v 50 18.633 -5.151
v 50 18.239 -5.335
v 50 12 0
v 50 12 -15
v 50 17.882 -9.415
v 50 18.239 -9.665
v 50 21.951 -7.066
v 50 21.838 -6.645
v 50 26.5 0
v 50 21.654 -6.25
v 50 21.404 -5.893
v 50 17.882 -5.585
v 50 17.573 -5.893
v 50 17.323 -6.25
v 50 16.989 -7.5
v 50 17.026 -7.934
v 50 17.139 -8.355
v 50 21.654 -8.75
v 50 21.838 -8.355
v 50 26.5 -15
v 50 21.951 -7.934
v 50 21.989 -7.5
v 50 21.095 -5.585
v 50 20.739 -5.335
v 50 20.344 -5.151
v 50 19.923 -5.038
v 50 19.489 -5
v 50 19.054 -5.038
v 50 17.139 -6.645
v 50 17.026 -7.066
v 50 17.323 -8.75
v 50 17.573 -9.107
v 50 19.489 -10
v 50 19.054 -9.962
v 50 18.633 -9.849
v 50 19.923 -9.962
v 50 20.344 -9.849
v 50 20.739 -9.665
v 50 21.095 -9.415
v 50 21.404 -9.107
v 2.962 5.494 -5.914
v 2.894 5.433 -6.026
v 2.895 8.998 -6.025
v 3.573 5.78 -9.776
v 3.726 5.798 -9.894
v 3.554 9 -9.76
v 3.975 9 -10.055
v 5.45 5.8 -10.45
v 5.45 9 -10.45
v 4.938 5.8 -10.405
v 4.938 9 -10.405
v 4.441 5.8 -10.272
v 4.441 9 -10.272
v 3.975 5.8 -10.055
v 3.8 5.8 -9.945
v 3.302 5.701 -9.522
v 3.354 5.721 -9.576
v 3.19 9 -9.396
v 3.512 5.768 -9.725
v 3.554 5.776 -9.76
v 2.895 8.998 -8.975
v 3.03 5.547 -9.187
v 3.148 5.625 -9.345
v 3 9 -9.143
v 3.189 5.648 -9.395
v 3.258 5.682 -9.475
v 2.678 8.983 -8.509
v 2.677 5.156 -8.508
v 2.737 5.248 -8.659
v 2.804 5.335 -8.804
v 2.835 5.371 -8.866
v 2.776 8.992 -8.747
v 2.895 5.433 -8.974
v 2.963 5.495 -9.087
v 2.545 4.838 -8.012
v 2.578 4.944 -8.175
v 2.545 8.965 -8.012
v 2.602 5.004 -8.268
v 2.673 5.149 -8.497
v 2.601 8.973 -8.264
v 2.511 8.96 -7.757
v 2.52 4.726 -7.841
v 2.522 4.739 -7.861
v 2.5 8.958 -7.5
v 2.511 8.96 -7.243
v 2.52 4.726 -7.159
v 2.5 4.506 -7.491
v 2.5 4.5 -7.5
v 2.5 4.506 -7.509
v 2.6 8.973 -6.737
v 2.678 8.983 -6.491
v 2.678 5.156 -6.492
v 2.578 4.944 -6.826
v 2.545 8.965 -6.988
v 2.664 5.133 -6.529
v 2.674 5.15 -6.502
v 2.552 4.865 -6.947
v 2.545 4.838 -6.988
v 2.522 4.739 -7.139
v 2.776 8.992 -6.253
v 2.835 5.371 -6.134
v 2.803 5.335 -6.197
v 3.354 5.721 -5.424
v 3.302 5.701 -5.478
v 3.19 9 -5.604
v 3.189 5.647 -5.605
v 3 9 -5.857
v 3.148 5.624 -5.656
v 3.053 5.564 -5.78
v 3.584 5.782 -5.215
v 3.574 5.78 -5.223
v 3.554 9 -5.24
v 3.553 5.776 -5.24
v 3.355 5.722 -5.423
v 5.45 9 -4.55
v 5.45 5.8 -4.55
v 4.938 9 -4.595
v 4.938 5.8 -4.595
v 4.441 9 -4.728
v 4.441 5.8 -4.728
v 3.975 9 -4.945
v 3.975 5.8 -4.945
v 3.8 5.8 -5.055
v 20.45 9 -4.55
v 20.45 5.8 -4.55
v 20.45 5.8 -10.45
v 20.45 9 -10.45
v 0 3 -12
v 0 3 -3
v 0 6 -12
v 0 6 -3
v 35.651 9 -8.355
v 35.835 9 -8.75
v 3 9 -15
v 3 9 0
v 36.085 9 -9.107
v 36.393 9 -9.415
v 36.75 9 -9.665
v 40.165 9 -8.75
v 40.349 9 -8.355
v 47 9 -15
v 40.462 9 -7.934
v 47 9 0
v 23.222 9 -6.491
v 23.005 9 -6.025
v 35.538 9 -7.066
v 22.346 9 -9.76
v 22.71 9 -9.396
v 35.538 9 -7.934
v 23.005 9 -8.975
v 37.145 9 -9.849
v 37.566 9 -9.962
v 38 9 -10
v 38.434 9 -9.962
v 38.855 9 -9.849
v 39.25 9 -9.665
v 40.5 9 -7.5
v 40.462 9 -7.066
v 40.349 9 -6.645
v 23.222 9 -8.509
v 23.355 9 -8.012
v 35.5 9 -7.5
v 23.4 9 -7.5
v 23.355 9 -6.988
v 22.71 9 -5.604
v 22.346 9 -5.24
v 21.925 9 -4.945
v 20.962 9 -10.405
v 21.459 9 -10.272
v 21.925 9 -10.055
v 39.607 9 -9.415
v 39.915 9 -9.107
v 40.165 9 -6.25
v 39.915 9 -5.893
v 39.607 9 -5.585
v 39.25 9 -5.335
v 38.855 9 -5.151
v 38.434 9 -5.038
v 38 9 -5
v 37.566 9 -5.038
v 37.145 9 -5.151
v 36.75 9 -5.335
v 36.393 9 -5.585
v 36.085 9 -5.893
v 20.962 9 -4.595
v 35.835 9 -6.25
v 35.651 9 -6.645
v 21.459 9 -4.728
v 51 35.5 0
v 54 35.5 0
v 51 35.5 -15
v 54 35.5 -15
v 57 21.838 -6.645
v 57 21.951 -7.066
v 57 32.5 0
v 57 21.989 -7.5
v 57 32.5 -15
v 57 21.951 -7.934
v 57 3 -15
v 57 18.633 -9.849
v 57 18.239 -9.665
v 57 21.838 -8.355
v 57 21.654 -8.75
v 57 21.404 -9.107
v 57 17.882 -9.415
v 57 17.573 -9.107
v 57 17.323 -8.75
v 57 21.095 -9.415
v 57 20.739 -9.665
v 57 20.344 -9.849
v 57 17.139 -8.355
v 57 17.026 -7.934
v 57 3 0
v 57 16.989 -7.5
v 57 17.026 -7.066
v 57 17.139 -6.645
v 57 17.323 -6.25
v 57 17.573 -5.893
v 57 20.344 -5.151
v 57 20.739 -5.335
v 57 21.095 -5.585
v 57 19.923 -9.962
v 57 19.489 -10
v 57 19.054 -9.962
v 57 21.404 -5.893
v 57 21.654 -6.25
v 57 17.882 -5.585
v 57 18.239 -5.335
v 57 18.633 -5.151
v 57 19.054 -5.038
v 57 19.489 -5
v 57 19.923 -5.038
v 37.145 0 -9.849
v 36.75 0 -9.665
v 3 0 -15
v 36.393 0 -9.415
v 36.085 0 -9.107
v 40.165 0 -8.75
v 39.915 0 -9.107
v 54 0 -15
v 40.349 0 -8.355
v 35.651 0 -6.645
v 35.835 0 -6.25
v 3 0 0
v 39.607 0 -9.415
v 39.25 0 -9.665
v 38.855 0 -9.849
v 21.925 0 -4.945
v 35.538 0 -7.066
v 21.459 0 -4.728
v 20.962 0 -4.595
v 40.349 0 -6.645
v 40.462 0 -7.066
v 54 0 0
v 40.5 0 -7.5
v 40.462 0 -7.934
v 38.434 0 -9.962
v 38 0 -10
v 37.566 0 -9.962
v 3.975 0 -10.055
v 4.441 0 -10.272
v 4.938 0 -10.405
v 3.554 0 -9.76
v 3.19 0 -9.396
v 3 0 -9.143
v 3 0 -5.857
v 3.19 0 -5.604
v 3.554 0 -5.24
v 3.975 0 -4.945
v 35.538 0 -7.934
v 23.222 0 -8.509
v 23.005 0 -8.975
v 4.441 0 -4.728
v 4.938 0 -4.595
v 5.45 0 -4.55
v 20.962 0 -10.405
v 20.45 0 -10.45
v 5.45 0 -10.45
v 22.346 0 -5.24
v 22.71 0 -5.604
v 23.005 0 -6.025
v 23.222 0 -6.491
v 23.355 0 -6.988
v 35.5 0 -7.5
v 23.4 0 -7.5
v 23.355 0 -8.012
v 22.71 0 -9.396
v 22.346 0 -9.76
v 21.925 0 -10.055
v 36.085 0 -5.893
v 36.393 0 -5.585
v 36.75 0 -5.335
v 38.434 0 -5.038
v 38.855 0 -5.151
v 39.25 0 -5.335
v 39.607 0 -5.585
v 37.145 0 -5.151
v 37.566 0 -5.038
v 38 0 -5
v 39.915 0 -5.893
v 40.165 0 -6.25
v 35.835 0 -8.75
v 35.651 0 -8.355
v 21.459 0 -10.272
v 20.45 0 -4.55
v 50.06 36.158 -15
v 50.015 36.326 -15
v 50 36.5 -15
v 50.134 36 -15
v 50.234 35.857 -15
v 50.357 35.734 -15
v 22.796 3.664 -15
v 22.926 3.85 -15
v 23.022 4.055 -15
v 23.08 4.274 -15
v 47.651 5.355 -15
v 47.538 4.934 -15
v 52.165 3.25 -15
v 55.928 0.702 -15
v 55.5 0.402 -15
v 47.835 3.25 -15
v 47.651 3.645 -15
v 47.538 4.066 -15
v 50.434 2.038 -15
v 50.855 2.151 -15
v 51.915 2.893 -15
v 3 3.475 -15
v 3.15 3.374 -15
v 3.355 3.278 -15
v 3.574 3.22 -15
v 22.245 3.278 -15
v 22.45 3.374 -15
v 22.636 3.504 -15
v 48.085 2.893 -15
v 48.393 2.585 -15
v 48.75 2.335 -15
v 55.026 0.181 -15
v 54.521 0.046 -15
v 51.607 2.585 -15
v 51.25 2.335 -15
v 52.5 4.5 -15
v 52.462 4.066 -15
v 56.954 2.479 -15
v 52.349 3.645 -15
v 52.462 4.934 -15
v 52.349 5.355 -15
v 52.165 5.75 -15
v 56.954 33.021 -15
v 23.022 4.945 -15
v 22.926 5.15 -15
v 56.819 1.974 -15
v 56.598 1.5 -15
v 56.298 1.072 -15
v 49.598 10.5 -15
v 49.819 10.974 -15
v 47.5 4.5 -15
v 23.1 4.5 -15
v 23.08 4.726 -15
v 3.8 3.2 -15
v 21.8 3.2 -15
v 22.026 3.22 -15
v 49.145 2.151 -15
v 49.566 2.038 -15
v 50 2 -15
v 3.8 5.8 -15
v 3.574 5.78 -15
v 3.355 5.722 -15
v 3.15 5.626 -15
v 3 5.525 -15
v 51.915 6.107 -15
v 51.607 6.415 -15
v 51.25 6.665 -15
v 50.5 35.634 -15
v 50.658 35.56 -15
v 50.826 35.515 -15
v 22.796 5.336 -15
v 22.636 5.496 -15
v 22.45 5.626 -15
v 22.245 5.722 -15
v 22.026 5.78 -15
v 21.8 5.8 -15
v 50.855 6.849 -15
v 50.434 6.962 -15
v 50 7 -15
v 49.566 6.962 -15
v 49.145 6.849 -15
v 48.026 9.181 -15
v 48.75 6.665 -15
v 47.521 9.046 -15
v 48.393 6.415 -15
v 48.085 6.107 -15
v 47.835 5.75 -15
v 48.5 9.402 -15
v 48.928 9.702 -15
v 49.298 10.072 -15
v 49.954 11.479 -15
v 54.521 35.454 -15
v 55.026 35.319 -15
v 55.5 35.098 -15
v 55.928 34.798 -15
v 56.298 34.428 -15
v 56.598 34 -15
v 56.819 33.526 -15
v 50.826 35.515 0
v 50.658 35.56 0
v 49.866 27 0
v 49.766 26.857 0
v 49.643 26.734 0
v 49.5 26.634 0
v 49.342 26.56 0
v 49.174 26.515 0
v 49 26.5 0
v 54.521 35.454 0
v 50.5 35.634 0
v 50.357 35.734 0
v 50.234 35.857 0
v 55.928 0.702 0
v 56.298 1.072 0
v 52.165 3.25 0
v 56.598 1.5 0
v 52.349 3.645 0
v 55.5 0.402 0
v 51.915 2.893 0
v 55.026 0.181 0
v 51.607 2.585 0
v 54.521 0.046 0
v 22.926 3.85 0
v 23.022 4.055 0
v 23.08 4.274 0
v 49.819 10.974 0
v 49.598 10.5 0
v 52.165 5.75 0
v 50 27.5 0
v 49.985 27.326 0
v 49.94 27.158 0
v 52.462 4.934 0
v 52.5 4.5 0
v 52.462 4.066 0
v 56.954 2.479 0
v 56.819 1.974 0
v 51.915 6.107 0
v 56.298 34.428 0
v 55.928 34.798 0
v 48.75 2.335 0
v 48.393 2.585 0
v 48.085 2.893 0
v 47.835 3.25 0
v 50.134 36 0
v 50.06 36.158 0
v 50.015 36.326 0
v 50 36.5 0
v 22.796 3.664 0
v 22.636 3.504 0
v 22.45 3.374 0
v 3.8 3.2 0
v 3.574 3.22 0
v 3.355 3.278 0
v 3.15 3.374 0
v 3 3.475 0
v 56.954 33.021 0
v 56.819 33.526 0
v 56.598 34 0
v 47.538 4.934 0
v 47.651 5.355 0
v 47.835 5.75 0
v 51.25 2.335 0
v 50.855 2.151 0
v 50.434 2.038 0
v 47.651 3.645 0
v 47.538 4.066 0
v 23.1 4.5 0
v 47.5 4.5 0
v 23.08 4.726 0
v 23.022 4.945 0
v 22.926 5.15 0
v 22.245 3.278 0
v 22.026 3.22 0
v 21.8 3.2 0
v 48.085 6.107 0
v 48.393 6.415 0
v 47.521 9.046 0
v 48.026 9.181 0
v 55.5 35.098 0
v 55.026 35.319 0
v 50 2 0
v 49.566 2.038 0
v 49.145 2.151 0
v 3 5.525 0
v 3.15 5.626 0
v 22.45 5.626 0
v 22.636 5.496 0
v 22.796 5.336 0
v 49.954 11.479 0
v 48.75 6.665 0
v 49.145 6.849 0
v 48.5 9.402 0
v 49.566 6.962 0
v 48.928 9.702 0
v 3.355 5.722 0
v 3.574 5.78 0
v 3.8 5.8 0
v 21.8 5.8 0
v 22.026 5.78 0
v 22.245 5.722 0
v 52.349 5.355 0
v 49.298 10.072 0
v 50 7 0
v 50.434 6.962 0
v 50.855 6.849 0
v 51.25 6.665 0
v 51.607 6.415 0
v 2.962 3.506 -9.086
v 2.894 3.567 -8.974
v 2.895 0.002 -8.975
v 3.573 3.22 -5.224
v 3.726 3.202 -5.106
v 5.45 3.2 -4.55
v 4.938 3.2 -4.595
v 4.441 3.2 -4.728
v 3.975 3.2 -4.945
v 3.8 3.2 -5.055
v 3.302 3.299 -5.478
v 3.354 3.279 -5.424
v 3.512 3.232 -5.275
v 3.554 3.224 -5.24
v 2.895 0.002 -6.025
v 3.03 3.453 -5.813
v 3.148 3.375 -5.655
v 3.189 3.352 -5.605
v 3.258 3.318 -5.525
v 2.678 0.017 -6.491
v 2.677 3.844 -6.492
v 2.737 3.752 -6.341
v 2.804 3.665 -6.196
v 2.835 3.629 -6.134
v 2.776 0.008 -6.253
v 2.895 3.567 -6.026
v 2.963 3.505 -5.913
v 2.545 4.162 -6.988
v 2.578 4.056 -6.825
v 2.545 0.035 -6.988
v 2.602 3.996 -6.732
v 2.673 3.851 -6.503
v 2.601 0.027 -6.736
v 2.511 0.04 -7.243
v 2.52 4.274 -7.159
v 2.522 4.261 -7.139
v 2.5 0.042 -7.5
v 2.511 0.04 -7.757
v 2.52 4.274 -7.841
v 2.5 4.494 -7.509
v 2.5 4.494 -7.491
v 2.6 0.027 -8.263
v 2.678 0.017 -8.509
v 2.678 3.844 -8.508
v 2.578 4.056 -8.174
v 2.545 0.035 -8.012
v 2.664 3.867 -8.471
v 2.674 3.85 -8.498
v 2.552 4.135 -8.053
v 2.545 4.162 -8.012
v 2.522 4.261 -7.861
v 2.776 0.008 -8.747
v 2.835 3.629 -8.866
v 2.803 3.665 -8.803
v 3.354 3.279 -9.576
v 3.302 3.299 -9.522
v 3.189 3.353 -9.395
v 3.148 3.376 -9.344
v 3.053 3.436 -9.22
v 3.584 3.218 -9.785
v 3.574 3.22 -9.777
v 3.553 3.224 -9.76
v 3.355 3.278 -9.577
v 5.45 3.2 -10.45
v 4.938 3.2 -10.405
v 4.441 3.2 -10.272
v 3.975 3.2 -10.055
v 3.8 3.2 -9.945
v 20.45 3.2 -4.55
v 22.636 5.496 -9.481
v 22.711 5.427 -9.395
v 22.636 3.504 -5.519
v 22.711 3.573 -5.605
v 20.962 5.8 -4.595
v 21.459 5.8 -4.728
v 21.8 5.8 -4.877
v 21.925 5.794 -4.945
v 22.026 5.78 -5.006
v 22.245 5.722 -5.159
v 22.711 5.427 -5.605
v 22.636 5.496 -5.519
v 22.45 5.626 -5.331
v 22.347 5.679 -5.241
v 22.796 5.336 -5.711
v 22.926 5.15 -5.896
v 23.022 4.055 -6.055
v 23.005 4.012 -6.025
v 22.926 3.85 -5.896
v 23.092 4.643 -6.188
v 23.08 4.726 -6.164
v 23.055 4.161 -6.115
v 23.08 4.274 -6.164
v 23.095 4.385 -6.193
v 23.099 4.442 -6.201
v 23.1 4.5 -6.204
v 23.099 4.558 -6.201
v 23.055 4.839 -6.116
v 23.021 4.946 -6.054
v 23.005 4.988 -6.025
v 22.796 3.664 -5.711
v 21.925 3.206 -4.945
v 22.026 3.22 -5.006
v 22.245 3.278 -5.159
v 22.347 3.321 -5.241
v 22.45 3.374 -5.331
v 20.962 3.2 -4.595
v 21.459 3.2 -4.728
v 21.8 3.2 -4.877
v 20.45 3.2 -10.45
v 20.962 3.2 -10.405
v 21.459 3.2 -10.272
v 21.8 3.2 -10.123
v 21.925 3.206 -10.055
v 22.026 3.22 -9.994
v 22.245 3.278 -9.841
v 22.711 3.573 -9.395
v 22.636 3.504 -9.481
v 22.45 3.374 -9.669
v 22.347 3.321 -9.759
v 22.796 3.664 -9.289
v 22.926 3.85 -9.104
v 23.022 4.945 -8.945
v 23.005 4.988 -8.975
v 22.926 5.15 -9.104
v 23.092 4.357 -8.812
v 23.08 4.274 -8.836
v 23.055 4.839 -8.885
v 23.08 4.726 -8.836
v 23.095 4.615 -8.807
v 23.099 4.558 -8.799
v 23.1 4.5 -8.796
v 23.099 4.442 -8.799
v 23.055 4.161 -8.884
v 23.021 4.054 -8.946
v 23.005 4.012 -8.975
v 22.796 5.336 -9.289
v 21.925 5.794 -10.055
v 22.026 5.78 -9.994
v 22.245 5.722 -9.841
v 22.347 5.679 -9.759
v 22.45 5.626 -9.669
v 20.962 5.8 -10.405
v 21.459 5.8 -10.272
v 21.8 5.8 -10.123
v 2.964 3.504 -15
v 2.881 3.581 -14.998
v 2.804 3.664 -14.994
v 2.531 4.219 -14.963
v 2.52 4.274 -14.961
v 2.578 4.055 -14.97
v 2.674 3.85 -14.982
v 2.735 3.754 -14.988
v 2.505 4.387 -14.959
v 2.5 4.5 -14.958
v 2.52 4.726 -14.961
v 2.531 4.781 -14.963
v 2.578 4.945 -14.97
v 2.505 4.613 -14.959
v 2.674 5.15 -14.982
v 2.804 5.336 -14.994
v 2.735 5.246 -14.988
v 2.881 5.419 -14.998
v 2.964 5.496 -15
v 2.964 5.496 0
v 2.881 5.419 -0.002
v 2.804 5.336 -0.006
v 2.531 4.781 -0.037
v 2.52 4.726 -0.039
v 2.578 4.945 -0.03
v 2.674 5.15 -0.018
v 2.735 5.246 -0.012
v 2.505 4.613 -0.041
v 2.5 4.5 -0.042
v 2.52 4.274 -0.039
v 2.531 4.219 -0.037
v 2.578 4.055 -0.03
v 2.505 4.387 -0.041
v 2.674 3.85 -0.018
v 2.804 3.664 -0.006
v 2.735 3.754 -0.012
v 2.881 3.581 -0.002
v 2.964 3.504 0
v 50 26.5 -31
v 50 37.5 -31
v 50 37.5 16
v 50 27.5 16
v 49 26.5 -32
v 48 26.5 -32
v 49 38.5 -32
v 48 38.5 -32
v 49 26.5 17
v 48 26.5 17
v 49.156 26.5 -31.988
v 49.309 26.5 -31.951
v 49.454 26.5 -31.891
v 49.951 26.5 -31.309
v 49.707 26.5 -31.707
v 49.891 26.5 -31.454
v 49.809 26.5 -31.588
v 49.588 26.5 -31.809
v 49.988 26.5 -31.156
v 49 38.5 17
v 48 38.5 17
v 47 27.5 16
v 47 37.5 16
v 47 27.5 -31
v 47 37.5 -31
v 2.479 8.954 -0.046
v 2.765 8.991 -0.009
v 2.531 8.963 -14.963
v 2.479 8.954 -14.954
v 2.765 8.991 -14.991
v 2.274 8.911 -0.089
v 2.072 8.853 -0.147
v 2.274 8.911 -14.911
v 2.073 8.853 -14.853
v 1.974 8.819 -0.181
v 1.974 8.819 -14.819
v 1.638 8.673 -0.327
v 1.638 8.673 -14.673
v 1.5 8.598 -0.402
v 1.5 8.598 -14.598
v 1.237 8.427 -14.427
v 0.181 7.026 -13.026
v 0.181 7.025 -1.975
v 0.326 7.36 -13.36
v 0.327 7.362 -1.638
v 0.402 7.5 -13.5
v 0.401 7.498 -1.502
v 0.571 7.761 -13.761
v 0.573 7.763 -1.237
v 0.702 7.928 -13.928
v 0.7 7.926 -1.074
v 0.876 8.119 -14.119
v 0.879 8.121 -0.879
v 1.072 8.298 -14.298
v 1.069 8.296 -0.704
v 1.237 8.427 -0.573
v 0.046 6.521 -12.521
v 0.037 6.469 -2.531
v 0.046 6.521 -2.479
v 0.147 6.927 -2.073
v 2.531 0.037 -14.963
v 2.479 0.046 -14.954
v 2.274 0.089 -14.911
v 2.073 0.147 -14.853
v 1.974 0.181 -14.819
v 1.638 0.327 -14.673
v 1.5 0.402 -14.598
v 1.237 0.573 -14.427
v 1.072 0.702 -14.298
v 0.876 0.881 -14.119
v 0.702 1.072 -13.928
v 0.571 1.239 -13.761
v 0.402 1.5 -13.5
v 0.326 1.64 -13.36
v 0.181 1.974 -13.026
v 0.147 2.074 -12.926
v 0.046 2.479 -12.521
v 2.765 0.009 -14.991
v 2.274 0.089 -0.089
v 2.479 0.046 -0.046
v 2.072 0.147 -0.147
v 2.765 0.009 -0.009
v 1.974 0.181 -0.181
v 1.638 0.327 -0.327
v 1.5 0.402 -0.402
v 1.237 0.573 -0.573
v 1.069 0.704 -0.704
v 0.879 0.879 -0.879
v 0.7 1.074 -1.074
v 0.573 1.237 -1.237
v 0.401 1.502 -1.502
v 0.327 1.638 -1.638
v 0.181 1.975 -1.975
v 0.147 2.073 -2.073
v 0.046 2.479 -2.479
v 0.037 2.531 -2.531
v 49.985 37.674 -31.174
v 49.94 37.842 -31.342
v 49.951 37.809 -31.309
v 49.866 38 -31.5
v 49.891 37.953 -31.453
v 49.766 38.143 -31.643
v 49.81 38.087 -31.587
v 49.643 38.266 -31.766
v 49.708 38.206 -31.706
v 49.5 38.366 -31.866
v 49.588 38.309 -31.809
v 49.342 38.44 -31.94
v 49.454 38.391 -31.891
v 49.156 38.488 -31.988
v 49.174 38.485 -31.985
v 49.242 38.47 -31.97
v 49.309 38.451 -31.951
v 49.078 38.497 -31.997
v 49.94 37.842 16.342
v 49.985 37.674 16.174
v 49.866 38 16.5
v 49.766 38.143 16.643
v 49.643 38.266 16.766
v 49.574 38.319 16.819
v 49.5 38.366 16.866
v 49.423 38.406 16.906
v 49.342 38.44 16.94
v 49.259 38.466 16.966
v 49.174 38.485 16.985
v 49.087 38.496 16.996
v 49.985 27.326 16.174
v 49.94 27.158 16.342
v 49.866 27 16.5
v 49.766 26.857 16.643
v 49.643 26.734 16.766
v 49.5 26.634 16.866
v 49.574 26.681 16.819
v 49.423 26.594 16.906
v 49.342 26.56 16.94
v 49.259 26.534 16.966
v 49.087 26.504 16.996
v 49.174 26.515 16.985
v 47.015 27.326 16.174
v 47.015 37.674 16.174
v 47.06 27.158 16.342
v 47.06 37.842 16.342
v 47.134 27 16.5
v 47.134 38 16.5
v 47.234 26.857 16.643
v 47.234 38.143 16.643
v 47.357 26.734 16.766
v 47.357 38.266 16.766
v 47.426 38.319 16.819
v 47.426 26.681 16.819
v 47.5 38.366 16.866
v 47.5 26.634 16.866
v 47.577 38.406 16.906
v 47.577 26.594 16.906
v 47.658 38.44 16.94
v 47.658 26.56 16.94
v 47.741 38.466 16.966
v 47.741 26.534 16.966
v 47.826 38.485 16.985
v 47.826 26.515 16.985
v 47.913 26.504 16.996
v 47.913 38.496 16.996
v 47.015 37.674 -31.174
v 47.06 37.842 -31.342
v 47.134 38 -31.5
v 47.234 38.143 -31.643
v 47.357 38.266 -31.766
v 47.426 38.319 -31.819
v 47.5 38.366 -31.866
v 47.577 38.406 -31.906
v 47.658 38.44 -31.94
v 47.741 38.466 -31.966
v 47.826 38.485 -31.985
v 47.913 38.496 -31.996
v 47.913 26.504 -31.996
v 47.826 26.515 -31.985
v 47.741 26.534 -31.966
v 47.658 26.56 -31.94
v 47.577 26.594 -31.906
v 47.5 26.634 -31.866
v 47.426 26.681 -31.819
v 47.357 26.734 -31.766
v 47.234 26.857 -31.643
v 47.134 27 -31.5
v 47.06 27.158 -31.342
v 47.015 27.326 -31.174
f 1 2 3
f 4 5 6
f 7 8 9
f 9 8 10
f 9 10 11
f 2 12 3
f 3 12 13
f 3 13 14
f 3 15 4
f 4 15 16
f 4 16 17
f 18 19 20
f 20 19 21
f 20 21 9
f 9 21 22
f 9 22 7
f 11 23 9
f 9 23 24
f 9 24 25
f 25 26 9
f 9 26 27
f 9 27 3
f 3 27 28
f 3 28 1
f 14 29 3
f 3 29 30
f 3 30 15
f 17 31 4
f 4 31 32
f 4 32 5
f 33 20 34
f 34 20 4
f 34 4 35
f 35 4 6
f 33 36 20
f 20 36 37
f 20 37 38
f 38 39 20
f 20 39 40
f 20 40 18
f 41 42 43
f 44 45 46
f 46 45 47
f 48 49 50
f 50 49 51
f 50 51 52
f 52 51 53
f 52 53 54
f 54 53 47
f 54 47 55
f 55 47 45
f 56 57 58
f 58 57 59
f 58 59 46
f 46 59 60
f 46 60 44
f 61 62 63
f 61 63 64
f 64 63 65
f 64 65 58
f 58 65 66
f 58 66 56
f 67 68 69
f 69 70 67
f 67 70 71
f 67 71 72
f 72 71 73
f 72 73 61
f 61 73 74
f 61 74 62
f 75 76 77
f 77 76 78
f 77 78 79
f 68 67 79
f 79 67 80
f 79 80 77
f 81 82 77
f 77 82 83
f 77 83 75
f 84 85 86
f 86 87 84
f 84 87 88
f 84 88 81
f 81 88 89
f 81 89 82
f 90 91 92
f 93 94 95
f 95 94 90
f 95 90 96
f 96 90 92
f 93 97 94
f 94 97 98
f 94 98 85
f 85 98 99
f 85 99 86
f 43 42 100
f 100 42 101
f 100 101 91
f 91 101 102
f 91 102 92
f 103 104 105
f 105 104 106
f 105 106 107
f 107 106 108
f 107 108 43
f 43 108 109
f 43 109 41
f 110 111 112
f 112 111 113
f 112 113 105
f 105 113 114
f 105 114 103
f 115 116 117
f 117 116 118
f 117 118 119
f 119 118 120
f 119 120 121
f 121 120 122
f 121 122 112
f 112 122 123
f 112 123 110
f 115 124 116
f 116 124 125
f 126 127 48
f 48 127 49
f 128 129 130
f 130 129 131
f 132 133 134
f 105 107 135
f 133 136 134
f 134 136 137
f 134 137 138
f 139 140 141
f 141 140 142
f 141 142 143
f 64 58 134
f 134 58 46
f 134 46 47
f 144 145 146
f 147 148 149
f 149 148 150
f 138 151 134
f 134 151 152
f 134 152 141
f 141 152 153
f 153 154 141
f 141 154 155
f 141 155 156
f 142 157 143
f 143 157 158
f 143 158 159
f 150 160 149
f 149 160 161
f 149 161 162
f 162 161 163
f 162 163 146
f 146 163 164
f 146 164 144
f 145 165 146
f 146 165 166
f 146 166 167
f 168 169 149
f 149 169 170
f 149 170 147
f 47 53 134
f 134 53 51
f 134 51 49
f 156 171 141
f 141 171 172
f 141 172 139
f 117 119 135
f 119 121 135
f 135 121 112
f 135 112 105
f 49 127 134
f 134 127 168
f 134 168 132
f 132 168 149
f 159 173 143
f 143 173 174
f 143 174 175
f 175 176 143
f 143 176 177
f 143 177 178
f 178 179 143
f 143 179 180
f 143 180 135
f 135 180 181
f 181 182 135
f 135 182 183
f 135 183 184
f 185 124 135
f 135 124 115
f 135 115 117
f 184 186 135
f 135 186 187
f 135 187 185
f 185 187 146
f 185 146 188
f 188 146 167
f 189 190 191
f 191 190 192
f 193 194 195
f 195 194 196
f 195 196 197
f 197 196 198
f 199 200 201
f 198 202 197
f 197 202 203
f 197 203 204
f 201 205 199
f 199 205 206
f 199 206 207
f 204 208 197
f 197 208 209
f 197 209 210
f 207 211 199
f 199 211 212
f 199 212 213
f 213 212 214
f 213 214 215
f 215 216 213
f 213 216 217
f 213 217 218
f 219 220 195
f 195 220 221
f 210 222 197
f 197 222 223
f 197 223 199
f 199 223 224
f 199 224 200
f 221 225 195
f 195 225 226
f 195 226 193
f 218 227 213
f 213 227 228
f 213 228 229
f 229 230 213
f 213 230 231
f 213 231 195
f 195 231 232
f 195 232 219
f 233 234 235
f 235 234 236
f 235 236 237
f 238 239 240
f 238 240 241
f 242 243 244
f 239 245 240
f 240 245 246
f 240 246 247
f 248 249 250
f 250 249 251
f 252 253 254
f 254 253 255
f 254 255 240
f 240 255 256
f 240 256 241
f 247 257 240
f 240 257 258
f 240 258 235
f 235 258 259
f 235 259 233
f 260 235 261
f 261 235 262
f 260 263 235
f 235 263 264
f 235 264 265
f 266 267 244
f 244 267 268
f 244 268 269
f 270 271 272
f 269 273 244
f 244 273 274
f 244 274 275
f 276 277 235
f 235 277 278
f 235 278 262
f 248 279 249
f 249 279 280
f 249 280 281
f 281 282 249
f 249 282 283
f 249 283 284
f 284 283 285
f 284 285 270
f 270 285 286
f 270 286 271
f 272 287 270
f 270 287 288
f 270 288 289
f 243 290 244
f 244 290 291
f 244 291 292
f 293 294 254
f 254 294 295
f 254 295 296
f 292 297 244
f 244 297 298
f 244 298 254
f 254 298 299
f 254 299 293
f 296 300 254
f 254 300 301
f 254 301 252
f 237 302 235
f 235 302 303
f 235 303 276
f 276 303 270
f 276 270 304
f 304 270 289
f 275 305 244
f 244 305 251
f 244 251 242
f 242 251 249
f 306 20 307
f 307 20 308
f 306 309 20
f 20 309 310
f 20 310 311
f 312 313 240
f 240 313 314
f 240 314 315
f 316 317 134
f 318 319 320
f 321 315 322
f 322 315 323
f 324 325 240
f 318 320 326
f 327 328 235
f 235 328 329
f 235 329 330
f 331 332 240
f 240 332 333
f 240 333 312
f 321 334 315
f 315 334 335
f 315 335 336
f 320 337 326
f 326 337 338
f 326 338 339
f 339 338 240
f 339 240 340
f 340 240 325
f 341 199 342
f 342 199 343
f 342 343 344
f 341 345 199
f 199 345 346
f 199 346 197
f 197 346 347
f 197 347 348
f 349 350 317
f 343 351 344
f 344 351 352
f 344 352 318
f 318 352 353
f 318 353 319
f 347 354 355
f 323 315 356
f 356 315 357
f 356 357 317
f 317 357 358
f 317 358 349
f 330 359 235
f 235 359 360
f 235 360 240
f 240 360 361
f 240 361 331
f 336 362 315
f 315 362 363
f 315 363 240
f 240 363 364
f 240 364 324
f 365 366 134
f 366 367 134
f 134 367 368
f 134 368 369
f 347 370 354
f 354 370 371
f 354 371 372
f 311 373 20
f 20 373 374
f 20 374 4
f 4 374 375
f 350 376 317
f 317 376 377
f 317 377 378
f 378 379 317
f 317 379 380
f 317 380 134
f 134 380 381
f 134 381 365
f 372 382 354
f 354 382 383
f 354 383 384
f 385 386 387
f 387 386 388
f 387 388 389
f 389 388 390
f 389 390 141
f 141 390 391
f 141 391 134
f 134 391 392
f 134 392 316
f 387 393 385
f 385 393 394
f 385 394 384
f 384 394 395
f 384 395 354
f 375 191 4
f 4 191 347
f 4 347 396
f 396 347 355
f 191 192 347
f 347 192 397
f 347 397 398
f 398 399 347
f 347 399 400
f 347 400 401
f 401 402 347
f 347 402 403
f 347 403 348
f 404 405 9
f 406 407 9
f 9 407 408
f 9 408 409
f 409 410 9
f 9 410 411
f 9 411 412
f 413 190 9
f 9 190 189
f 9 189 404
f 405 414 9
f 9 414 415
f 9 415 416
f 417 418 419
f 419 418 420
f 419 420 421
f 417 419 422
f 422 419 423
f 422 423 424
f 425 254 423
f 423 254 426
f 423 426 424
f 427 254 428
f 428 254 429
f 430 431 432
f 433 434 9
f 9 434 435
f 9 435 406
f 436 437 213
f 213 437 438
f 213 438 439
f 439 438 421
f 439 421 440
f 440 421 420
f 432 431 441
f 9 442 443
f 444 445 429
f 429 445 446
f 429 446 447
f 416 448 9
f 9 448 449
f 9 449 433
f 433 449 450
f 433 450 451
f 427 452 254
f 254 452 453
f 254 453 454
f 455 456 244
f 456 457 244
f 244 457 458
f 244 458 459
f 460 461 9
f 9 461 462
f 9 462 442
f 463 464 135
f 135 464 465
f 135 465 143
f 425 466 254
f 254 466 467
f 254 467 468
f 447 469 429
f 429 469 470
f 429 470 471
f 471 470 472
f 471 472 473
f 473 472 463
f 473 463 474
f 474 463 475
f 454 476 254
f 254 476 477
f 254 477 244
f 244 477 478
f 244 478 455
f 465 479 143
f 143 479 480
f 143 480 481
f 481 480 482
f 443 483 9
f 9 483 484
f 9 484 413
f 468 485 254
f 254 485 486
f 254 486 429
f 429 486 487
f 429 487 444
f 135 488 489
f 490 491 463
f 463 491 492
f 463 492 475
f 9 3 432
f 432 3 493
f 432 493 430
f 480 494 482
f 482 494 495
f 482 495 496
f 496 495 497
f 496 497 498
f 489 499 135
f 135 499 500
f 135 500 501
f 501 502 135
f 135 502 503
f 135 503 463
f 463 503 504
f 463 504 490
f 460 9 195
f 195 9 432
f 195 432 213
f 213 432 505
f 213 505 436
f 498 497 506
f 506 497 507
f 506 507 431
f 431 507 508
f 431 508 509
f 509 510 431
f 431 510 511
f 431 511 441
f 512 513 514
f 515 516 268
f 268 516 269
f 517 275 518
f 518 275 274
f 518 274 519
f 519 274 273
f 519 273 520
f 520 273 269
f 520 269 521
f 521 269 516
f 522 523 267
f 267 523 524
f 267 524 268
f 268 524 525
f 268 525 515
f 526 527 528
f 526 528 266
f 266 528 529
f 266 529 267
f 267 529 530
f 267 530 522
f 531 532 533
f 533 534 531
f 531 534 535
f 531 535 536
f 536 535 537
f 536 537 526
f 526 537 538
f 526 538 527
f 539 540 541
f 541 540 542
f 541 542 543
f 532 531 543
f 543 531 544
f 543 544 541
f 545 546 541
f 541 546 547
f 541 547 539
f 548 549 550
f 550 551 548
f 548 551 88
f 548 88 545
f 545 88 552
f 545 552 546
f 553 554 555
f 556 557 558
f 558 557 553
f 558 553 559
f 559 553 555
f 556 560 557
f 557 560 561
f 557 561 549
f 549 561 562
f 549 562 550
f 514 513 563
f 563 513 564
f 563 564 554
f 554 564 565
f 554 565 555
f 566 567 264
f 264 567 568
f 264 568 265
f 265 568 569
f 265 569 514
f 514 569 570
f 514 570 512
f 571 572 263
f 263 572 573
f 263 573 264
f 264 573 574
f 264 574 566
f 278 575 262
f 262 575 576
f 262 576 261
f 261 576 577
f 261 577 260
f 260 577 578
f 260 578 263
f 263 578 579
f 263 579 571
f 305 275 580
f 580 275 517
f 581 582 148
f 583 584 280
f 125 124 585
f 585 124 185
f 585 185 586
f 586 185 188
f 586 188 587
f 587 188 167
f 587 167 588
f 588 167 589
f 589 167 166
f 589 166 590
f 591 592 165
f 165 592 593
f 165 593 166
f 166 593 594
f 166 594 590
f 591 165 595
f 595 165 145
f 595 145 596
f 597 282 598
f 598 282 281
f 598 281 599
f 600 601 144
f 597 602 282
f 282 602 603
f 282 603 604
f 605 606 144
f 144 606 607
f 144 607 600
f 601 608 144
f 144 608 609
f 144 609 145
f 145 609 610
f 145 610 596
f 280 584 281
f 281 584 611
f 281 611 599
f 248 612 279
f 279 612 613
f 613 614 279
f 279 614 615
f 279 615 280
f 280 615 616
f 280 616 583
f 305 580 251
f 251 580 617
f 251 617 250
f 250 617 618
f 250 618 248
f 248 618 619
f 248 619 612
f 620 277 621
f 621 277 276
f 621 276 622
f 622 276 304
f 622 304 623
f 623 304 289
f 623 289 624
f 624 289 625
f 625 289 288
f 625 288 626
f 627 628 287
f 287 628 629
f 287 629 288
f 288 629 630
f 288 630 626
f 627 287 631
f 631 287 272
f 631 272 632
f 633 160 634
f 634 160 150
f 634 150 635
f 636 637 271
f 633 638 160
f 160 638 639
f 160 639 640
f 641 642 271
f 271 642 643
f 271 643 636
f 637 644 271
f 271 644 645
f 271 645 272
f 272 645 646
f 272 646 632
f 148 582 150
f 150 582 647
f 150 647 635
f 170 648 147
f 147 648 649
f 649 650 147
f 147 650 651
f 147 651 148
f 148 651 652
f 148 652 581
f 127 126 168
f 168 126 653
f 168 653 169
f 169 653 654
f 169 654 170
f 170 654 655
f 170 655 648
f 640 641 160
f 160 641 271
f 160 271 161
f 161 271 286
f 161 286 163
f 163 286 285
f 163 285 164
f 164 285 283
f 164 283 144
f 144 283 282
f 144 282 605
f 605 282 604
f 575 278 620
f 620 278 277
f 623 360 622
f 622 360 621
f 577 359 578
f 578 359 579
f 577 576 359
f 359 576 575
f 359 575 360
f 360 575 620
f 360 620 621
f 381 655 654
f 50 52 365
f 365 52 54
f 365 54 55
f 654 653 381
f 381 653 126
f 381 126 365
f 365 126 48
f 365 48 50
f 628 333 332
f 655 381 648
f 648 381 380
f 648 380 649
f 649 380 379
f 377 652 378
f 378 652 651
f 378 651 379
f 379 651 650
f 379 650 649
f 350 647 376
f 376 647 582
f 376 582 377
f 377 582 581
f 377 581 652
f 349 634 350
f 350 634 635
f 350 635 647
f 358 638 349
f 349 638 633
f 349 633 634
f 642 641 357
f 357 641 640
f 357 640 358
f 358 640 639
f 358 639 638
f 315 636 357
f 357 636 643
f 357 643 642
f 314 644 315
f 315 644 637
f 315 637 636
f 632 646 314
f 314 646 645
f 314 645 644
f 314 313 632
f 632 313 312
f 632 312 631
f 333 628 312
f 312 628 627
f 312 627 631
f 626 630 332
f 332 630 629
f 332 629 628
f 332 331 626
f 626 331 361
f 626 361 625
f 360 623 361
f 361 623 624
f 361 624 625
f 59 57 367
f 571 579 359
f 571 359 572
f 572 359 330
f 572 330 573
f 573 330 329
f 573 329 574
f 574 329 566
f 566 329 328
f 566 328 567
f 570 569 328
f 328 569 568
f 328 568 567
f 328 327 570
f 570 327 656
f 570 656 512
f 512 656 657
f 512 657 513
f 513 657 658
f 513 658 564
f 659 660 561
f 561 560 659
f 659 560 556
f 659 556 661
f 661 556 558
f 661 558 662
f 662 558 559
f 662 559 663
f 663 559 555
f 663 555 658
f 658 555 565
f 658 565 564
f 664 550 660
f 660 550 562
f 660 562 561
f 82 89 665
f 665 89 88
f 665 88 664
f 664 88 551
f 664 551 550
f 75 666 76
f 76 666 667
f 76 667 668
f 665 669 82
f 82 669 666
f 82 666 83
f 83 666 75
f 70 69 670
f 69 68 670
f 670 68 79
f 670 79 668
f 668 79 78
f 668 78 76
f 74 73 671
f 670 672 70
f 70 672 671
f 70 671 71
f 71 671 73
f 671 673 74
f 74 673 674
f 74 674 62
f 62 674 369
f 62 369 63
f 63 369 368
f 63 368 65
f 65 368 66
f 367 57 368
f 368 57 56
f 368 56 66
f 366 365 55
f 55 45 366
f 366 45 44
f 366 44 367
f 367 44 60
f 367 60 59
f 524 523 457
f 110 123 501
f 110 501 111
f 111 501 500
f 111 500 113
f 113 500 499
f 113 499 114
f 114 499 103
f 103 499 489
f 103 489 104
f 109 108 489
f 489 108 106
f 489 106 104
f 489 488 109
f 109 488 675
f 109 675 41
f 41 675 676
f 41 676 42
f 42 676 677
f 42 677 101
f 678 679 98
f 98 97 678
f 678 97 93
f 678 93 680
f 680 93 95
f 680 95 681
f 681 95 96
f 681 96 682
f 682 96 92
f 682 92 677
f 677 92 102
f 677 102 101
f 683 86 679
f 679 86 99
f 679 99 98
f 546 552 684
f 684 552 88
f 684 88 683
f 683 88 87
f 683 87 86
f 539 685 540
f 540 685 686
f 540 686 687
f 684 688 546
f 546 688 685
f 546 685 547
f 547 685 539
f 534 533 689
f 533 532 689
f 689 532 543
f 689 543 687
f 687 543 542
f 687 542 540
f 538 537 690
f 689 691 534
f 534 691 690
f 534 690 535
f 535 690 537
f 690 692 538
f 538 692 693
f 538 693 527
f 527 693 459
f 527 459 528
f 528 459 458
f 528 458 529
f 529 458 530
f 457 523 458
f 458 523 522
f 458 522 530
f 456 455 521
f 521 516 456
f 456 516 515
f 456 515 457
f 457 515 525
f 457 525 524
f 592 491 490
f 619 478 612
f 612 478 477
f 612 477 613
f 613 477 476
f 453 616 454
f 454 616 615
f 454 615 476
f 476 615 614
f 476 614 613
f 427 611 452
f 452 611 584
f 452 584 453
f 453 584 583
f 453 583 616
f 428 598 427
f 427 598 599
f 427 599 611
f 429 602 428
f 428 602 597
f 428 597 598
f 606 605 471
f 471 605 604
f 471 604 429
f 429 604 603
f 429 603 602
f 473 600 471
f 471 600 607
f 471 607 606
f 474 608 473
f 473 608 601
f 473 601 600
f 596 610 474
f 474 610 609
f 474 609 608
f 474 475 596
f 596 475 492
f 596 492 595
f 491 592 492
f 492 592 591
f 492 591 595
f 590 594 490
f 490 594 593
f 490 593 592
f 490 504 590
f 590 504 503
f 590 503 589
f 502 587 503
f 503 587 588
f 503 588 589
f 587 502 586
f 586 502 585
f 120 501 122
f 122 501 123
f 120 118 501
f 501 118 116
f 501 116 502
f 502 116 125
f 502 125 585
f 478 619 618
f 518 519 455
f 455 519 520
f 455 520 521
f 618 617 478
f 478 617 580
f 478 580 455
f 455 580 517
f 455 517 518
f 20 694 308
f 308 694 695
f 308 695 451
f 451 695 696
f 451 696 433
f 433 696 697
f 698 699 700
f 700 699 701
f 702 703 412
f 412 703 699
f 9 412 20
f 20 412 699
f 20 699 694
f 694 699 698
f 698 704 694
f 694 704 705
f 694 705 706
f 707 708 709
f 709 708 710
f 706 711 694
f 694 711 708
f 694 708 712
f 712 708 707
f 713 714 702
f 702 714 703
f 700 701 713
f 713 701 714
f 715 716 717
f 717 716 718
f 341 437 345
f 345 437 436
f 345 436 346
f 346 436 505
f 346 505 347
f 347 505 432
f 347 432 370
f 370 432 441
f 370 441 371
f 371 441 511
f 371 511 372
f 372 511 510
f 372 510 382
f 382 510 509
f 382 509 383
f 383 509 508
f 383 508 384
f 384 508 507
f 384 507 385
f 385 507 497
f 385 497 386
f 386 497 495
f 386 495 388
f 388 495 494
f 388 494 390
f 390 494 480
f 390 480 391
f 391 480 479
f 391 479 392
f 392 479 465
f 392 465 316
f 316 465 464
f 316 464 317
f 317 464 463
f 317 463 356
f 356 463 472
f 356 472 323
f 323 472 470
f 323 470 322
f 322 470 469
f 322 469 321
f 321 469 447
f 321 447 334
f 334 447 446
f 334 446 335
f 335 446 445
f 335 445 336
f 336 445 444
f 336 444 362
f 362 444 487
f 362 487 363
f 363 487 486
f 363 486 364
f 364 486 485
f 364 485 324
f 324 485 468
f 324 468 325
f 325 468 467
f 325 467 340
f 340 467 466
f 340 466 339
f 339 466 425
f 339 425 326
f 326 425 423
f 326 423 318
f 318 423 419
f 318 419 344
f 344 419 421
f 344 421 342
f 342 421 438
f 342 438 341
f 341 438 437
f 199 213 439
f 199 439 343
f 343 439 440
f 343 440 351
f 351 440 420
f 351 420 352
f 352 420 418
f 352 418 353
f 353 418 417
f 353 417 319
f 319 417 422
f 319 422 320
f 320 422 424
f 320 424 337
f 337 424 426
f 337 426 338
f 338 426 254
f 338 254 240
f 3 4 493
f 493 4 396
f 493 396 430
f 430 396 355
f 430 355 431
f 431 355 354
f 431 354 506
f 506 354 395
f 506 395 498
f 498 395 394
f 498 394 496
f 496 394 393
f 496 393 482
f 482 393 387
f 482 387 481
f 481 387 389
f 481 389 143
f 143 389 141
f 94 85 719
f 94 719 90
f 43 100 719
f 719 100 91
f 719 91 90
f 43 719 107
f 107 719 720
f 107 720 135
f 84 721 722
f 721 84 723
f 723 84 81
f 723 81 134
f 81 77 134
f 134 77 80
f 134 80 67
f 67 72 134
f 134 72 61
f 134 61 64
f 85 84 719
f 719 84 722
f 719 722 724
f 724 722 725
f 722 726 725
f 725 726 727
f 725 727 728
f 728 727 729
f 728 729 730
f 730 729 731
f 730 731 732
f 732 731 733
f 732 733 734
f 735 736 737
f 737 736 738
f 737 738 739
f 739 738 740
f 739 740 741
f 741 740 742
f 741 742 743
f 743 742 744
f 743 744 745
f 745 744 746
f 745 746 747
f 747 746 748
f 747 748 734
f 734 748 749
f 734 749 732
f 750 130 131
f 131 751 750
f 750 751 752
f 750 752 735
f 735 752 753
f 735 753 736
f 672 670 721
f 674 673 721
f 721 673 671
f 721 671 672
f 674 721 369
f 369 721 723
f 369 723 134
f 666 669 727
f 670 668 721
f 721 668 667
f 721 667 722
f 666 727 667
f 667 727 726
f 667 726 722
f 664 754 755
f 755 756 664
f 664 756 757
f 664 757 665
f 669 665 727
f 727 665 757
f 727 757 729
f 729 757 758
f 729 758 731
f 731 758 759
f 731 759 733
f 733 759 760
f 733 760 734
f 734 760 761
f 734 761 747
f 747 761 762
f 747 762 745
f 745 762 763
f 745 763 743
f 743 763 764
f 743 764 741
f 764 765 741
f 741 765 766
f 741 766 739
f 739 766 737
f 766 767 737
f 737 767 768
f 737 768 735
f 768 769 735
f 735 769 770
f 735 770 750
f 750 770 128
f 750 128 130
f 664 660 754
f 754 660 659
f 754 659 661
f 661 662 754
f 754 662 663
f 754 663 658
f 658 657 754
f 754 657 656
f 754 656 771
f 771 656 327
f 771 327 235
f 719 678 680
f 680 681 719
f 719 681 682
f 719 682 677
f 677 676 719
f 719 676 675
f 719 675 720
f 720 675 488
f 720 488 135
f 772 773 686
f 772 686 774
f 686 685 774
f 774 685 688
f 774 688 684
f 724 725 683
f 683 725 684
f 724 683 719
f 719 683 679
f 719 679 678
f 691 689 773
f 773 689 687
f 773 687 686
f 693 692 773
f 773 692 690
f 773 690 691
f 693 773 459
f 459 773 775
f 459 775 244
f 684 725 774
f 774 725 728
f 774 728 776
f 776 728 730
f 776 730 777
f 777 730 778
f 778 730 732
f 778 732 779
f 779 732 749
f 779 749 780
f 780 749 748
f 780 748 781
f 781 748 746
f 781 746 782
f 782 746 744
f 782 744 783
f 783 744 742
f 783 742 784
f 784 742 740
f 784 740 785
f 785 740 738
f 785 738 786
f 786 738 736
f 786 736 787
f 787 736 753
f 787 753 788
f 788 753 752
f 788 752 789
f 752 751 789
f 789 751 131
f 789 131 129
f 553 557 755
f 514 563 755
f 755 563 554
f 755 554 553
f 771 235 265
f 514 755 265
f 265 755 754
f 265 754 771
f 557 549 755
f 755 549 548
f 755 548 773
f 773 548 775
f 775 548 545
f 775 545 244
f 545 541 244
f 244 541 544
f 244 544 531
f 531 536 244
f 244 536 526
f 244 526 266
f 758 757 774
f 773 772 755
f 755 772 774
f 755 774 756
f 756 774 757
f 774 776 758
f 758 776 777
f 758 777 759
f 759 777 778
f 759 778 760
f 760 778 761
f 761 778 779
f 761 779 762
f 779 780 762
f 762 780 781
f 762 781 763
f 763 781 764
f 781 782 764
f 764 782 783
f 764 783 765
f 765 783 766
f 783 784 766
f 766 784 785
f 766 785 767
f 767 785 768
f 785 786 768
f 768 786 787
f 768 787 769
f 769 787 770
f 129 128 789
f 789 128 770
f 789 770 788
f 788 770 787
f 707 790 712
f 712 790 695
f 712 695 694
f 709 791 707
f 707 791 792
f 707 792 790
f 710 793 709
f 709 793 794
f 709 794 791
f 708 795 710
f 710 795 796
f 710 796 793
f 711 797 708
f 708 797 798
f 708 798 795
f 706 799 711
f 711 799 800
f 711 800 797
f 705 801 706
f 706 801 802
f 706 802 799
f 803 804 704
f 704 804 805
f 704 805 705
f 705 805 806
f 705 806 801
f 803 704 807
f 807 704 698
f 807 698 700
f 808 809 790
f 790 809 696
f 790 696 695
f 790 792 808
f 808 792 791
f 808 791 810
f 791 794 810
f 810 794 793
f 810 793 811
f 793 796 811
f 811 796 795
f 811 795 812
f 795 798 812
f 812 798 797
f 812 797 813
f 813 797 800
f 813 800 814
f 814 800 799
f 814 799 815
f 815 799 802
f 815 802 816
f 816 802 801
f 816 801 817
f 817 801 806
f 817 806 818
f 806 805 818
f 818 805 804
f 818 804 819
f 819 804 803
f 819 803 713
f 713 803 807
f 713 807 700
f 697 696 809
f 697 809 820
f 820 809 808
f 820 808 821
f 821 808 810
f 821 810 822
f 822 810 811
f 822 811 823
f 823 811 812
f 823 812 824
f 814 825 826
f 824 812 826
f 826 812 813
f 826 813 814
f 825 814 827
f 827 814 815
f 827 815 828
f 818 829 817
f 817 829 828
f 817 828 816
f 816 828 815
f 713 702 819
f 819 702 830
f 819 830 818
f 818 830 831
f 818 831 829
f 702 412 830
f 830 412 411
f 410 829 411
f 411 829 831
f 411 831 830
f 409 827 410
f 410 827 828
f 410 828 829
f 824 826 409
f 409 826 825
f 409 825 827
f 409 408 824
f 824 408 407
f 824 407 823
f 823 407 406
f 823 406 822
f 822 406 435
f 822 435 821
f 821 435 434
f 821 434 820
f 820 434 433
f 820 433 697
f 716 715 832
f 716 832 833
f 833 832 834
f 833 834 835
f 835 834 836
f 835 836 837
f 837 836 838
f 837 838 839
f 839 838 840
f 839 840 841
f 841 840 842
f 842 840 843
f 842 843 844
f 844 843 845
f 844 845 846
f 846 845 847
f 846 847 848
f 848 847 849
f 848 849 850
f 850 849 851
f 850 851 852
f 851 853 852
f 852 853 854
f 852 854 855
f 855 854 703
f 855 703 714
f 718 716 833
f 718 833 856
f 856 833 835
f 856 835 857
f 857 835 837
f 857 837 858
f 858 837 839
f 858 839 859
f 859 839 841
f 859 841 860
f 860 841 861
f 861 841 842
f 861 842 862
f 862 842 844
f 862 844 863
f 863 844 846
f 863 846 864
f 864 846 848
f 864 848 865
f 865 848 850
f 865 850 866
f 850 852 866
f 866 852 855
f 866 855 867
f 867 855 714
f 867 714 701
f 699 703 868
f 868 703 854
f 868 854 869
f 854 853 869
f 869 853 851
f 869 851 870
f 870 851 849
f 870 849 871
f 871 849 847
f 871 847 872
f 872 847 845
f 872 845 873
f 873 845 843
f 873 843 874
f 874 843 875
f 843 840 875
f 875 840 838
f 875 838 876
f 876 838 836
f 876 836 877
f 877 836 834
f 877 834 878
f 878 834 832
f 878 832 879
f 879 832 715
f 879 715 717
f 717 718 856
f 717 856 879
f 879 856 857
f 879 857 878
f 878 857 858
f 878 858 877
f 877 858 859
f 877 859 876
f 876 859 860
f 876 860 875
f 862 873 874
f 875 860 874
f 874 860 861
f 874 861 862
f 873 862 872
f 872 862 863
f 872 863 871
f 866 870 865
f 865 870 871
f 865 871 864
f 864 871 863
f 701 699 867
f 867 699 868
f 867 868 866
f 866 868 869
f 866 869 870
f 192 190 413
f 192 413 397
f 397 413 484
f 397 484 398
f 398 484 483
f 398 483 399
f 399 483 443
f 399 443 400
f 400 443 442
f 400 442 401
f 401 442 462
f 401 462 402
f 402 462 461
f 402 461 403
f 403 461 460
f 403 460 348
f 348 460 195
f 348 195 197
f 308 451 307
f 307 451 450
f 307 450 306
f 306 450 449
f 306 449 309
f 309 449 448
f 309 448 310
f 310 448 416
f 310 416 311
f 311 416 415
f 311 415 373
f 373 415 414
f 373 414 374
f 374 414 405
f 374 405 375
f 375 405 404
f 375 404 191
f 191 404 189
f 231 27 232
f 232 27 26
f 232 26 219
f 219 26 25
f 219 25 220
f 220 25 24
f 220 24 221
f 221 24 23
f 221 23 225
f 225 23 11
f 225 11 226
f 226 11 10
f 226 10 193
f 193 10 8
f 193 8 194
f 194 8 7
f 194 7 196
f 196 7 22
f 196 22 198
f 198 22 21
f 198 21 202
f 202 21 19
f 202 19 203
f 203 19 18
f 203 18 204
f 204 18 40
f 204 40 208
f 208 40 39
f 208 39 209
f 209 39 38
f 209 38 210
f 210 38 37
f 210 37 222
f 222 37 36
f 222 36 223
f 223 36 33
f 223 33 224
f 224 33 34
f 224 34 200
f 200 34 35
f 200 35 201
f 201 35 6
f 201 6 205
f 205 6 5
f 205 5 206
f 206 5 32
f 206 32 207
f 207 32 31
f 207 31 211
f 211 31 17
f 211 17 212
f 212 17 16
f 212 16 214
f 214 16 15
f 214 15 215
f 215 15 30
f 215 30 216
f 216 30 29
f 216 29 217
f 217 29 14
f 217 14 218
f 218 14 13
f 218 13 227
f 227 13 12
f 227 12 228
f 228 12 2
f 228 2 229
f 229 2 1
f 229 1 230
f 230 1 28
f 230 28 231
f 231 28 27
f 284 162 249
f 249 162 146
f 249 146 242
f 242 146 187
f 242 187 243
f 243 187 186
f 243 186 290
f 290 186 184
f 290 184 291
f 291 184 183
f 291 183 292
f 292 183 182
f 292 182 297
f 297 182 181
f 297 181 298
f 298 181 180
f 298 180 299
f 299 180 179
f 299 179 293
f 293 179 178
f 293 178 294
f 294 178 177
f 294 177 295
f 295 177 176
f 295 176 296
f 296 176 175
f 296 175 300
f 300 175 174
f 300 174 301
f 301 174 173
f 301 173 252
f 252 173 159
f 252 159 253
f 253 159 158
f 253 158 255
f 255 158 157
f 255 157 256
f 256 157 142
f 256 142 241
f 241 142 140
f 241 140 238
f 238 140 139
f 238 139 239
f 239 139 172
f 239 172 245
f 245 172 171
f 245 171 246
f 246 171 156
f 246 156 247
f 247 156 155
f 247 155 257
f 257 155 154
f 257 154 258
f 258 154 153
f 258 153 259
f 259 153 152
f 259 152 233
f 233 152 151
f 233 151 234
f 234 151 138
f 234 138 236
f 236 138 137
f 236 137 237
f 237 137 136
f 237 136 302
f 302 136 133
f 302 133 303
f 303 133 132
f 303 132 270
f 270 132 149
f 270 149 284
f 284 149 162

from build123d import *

# Parameters (mm, degrees)
BOSS_EXTRUDE1_DEPTH = 15
CUT_EXTRUDE1_DEPTH  = 69.805886376
CUT_EXTRUDE2_DEPTH  = 69.805886376
SKETCH4_W           = 49
SKETCH4_H           = 12
BOSS_EXTRUDE2_DEPTH = 3
SKETCH5_R           = 2.5
CUT_EXTRUDE3_DEPTH  = 76.863364017
FILLET1_R           = 3
FILLET2_R           = 3
FILLET3_R           = 1
FILLET4_R           = 3
FILLET5_R           = 1
SKETCH6_R           = 2.5
CUT_EXTRUDE4_DEPTH  = 71.754858561
SKETCH7_R           = 2.5
CUT_EXTRUDE5_DEPTH  = 72.716455573


with BuildPart() as part:
    # Sketch1 → Boss-Extrude1 (new body)
    with BuildSketch(Plane.XY):
        Polygon((0, 0), (57, 0), (57, 35.5), (50, 35.5), (50, 9), (0, 9), align=None)
    extrude(amount=-BOSS_EXTRUDE1_DEPTH)

    # Sketch2 → Cut-Extrude1 (cut, through all)
    with BuildSketch(Plane.XZ):
        with BuildLine():
            Line((5.45, -4.55), (20.45, -4.55))
            ThreePointArc((20.45, -4.55), (23.4, -7.5), (20.45, -10.45))
            Line((20.45, -10.45), (5.45, -10.45))
            ThreePointArc((5.45, -10.45), (2.5, -7.5), (5.45, -4.55))
        make_face()
    extrude(amount=-CUT_EXTRUDE1_DEPTH, mode=Mode.SUBTRACT)

    # Sketch3 → Cut-Extrude2 (cut, through all)
    with BuildSketch(Plane.XY):
        with BuildLine():
            Line((3.8, 5.8), (21.8, 5.8))
            ThreePointArc((21.8, 5.8), (23.1, 4.5), (21.8, 3.2))
            Line((21.8, 3.2), (3.8, 3.2))
            ThreePointArc((3.8, 3.2), (2.5, 4.5), (3.8, 5.8))
        make_face()
    extrude(amount=-CUT_EXTRUDE2_DEPTH, mode=Mode.SUBTRACT)

    # Sketch4 → Boss-Extrude2 (add)
    with BuildSketch(Plane.ZY.offset(-50)):
        with Locations((-7.5, 32.5)):
            Rectangle(SKETCH4_W, SKETCH4_H)
    extrude(amount=BOSS_EXTRUDE2_DEPTH)

    # Sketch5 → Cut-Extrude3 (cut, through all)
    with BuildSketch(Plane.XY):
        with Locations((50, 4.5)):
            Circle(SKETCH5_R)
    extrude(amount=-CUT_EXTRUDE3_DEPTH, mode=Mode.SUBTRACT)

    # Fillet1
    fillet1_edges = [part.edges().sort_by_distance(p)[0] for p in [
        (50, 9, -7.5),
        (57, 0, -7.5),
    ]]
    fillet(fillet1_edges, radius=FILLET1_R)

    # Fillet2
    # the kernel refuses this fillet: 3 mm, written as the material it takes off along each edge
    with BuildSketch(Plane(origin=(0, 9, 7.5), x_dir=(0, -1, 0), z_dir=(0, 0, -1)), Plane(origin=(0, 0, 7.5), x_dir=(1, 0, 0), z_dir=(0, 0, -1))) as fillet2_piece_1:
        with BuildLine():
            CenterArc((FILLET2_R, -FILLET2_R), FILLET2_R, 90, 90)
            Line((0, -FILLET2_R), (0, 0))
            Line((0, 0), (FILLET2_R, 0))
        make_face()
    extrude(amount=30, mode=Mode.SUBTRACT)
    with BuildSketch(Plane(origin=(0, 16.5, -15), x_dir=(0, 0, 1), z_dir=(0, -1, 0)), Plane(origin=(0, 16.5, 0), x_dir=(1, 0, 0), z_dir=(0, -1, 0))) as fillet2_piece_2:
        with BuildLine():
            CenterArc((FILLET2_R, -FILLET2_R), FILLET2_R, 90, 90)
            Line((0, -FILLET2_R), (0, 0))
            Line((0, 0), (FILLET2_R, 0))
        make_face()
    extrude(amount=24, mode=Mode.SUBTRACT)

    # Fillet3
    fillet3_edges = [part.edges().sort_by_distance(p)[0] for p in [
        (50, 26.5, 8.5),
        (50, 32.5, -32),
        (50, 38.5, -7.5),
        (50, 32.5, 17),
        (47, 32.5, -32),
        (47, 32.5, 17),
        (47, 26.5, -7.5),
        (47, 38.5, -7.5),
    ]]
    fillet(fillet3_edges, radius=FILLET3_R)

    # Fillet4
    fillet4_edges = [part.edges().sort_by_distance(p)[0] for p in [
        (57, 35.5, -7.5),
    ]]
    fillet(fillet4_edges, radius=FILLET4_R)

    # Fillet5
    fillet5_edges = [part.edges().sort_by_distance(p)[0] for p in [
        (50, 35.5, -7.5),
    ]]
    fillet(fillet5_edges, radius=FILLET5_R)

    # Sketch6 → Cut-Extrude4 (cut, through all)
    with BuildSketch(Plane.ZY.offset(-50)):
        with Locations((-7.5, 19.488510255)):
            Circle(SKETCH6_R)
    extrude(amount=-CUT_EXTRUDE4_DEPTH, mode=Mode.SUBTRACT)

    # Sketch7 → Cut-Extrude5 (cut, through all)
    with BuildSketch(Plane(origin=(0, 9, 0), x_dir=(1, 0, 0), z_dir=(0, 1, 0))):
        with Locations(Location((38, 7.5, 0), (0, 0, 180))):
            Circle(SKETCH7_R)
    extrude(amount=-CUT_EXTRUDE5_DEPTH, mode=Mode.SUBTRACT)


solid = part.part
